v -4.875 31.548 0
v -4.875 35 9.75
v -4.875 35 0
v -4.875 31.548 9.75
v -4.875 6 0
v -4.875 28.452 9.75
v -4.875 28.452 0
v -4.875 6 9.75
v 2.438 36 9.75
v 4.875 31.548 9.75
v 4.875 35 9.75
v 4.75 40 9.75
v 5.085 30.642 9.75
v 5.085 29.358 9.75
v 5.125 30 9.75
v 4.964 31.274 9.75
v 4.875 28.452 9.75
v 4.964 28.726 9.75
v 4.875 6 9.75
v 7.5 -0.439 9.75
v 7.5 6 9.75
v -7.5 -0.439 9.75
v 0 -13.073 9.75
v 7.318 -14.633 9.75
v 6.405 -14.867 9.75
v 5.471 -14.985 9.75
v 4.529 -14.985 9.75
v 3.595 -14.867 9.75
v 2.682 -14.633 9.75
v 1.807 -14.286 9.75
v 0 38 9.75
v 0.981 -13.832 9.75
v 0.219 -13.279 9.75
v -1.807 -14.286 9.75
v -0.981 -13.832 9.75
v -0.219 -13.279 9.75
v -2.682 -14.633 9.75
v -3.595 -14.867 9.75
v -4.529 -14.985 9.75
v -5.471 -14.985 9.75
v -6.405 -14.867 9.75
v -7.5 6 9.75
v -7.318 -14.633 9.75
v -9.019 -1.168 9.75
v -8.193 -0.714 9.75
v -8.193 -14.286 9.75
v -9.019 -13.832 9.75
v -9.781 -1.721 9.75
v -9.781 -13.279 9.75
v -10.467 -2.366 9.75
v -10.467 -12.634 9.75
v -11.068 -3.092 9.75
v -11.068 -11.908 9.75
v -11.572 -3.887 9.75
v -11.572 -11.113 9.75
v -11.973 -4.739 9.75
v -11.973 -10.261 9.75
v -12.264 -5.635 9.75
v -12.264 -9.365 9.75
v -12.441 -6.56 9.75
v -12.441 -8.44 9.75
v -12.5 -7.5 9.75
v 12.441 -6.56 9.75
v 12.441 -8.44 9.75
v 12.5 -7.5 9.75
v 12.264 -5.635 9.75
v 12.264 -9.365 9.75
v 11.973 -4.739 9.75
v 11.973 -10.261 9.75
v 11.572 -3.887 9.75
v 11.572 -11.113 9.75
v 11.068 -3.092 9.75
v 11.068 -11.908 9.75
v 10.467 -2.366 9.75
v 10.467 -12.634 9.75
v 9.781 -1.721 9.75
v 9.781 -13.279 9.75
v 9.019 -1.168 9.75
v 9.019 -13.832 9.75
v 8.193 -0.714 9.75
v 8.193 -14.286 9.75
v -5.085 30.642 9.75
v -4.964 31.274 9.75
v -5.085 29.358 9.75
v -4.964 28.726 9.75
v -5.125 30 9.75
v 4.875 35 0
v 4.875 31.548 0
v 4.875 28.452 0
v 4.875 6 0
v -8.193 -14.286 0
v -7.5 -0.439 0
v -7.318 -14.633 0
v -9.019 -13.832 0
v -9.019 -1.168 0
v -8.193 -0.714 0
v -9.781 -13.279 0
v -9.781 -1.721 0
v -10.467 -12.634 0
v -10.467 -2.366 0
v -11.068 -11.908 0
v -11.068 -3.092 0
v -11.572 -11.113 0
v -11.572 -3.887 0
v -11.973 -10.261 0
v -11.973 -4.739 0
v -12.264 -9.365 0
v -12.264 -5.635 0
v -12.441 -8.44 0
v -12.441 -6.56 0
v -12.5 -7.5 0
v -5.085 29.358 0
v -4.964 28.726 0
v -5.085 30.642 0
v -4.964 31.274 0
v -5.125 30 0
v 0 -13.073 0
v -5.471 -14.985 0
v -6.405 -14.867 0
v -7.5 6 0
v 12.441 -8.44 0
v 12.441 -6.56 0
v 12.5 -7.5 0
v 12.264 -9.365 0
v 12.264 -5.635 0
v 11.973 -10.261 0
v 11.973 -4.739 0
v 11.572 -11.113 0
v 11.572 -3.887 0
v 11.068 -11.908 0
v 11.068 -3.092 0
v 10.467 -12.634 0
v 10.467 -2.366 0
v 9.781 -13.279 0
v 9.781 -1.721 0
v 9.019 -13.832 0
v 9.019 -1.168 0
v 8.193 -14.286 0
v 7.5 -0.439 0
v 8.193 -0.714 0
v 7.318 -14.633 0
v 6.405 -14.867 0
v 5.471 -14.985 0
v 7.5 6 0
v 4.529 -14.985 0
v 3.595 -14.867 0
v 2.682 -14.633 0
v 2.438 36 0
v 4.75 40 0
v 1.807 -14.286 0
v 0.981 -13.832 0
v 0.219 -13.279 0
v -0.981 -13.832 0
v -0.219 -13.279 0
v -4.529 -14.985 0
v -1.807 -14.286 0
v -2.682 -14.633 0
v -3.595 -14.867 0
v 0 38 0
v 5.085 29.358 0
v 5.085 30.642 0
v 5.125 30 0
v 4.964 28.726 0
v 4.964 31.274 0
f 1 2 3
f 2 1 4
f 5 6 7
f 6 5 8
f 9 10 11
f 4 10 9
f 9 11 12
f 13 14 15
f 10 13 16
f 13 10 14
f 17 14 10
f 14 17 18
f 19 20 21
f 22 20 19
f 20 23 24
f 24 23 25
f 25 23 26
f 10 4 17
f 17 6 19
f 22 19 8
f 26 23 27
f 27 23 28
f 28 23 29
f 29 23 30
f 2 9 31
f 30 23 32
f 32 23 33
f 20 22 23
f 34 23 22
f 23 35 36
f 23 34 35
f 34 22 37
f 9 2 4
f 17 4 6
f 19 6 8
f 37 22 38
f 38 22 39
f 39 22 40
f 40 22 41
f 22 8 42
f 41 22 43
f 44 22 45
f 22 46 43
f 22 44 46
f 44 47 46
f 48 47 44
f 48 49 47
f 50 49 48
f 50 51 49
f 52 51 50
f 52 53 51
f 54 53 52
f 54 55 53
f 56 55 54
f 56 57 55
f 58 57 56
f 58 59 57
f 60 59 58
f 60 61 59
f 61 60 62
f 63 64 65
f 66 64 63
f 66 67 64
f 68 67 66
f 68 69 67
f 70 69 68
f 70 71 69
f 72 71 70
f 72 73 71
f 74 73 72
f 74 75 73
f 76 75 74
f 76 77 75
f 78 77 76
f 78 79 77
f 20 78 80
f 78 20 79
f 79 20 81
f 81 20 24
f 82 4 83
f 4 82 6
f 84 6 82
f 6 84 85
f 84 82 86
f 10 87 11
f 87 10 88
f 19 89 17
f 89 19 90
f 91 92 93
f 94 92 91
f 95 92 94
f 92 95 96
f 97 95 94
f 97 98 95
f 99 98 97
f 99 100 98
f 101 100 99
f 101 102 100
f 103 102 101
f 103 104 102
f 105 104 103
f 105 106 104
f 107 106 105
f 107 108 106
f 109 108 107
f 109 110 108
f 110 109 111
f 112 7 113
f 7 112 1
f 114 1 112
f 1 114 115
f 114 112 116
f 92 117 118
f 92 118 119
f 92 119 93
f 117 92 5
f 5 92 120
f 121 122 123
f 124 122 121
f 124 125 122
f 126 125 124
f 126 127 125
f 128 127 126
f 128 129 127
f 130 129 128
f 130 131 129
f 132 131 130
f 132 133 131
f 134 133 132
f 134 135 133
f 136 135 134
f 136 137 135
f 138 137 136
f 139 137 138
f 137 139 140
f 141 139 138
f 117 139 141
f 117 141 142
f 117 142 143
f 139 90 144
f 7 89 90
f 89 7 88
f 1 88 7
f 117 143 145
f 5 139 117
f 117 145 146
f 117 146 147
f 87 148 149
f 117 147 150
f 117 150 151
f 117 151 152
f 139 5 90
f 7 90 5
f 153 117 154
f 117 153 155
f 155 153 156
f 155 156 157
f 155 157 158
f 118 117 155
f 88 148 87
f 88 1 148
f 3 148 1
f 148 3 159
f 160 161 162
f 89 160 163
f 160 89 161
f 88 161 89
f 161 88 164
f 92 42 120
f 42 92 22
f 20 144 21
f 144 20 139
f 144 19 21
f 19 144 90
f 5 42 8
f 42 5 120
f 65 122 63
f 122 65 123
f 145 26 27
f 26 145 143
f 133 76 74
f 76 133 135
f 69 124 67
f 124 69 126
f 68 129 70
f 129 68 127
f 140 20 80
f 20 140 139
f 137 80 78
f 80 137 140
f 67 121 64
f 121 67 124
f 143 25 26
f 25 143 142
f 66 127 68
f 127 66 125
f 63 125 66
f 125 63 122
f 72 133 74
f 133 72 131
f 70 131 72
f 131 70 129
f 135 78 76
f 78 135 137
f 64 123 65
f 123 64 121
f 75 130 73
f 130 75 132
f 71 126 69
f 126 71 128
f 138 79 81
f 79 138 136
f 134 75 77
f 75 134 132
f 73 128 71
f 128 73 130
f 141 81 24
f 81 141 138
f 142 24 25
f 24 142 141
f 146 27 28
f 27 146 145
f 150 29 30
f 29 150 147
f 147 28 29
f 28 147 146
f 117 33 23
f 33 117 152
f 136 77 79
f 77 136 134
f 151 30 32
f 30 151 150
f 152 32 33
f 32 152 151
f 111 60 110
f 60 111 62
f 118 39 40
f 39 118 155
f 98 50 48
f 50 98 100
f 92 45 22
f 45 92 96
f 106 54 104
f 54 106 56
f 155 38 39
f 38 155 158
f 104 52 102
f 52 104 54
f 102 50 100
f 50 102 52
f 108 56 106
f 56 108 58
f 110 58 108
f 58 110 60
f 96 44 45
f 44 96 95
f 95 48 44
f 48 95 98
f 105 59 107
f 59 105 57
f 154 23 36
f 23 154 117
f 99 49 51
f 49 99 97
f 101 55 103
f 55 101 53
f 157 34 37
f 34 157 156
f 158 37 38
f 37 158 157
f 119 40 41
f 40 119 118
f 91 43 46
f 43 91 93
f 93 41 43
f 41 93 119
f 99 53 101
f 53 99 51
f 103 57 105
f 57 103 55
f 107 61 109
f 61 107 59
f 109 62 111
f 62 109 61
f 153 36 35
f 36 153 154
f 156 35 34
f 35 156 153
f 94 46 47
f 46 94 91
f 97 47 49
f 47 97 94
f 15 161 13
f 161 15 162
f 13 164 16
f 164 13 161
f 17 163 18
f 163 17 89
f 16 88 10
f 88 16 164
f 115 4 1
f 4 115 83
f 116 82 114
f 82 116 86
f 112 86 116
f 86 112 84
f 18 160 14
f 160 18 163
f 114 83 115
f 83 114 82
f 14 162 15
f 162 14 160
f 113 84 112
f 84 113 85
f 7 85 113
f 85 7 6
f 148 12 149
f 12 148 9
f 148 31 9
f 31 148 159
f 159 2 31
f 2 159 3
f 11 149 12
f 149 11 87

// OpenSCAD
// bone insert (need 2 items)

// clearance
tol = 0.25;

// innere insert parameters
iih = 10;
iiw = 10;
iil = 20;

// outer insert parameters
iod = 15;
ioh = iih;
irh = iih;
irw = 15;
irl = 6;

real_h = iih - tol;

pp = [[-(iiw - tol) / 2, 0],
	[(iiw - tol) / 2, 0],
	[(iiw - tol - tol) / 2, 5],
	[(iiw - tol) / 4, 1],
	[0, 3],
	[-(iiw - tol) / 4, 4]];
pl = [[0, 1, 2, 3, 4]];

translate([-(iiw - tol) / 2, 0, 0]) cube([iiw - tol, iil + irw, real_h]);
translate([-irw / 2, -irl, 0]) cube([irw, irl * 2, real_h]);
translate([iod / 3, -iod / 2, 0]) cylinder(d = iod, h = real_h, $fn = 50);
translate([-iod / 3, -iod / 2, 0]) cylinder(d = iod, h = real_h, $fn = 50);
translate([0, iil + irw - iih / 2, 0]) cylinder(d = iiw + tol, h = real_h, $fn = 50);
translate([0, iil + irw, 0]) linear_extrude(real_h) polygon(pp, pl, 10);
